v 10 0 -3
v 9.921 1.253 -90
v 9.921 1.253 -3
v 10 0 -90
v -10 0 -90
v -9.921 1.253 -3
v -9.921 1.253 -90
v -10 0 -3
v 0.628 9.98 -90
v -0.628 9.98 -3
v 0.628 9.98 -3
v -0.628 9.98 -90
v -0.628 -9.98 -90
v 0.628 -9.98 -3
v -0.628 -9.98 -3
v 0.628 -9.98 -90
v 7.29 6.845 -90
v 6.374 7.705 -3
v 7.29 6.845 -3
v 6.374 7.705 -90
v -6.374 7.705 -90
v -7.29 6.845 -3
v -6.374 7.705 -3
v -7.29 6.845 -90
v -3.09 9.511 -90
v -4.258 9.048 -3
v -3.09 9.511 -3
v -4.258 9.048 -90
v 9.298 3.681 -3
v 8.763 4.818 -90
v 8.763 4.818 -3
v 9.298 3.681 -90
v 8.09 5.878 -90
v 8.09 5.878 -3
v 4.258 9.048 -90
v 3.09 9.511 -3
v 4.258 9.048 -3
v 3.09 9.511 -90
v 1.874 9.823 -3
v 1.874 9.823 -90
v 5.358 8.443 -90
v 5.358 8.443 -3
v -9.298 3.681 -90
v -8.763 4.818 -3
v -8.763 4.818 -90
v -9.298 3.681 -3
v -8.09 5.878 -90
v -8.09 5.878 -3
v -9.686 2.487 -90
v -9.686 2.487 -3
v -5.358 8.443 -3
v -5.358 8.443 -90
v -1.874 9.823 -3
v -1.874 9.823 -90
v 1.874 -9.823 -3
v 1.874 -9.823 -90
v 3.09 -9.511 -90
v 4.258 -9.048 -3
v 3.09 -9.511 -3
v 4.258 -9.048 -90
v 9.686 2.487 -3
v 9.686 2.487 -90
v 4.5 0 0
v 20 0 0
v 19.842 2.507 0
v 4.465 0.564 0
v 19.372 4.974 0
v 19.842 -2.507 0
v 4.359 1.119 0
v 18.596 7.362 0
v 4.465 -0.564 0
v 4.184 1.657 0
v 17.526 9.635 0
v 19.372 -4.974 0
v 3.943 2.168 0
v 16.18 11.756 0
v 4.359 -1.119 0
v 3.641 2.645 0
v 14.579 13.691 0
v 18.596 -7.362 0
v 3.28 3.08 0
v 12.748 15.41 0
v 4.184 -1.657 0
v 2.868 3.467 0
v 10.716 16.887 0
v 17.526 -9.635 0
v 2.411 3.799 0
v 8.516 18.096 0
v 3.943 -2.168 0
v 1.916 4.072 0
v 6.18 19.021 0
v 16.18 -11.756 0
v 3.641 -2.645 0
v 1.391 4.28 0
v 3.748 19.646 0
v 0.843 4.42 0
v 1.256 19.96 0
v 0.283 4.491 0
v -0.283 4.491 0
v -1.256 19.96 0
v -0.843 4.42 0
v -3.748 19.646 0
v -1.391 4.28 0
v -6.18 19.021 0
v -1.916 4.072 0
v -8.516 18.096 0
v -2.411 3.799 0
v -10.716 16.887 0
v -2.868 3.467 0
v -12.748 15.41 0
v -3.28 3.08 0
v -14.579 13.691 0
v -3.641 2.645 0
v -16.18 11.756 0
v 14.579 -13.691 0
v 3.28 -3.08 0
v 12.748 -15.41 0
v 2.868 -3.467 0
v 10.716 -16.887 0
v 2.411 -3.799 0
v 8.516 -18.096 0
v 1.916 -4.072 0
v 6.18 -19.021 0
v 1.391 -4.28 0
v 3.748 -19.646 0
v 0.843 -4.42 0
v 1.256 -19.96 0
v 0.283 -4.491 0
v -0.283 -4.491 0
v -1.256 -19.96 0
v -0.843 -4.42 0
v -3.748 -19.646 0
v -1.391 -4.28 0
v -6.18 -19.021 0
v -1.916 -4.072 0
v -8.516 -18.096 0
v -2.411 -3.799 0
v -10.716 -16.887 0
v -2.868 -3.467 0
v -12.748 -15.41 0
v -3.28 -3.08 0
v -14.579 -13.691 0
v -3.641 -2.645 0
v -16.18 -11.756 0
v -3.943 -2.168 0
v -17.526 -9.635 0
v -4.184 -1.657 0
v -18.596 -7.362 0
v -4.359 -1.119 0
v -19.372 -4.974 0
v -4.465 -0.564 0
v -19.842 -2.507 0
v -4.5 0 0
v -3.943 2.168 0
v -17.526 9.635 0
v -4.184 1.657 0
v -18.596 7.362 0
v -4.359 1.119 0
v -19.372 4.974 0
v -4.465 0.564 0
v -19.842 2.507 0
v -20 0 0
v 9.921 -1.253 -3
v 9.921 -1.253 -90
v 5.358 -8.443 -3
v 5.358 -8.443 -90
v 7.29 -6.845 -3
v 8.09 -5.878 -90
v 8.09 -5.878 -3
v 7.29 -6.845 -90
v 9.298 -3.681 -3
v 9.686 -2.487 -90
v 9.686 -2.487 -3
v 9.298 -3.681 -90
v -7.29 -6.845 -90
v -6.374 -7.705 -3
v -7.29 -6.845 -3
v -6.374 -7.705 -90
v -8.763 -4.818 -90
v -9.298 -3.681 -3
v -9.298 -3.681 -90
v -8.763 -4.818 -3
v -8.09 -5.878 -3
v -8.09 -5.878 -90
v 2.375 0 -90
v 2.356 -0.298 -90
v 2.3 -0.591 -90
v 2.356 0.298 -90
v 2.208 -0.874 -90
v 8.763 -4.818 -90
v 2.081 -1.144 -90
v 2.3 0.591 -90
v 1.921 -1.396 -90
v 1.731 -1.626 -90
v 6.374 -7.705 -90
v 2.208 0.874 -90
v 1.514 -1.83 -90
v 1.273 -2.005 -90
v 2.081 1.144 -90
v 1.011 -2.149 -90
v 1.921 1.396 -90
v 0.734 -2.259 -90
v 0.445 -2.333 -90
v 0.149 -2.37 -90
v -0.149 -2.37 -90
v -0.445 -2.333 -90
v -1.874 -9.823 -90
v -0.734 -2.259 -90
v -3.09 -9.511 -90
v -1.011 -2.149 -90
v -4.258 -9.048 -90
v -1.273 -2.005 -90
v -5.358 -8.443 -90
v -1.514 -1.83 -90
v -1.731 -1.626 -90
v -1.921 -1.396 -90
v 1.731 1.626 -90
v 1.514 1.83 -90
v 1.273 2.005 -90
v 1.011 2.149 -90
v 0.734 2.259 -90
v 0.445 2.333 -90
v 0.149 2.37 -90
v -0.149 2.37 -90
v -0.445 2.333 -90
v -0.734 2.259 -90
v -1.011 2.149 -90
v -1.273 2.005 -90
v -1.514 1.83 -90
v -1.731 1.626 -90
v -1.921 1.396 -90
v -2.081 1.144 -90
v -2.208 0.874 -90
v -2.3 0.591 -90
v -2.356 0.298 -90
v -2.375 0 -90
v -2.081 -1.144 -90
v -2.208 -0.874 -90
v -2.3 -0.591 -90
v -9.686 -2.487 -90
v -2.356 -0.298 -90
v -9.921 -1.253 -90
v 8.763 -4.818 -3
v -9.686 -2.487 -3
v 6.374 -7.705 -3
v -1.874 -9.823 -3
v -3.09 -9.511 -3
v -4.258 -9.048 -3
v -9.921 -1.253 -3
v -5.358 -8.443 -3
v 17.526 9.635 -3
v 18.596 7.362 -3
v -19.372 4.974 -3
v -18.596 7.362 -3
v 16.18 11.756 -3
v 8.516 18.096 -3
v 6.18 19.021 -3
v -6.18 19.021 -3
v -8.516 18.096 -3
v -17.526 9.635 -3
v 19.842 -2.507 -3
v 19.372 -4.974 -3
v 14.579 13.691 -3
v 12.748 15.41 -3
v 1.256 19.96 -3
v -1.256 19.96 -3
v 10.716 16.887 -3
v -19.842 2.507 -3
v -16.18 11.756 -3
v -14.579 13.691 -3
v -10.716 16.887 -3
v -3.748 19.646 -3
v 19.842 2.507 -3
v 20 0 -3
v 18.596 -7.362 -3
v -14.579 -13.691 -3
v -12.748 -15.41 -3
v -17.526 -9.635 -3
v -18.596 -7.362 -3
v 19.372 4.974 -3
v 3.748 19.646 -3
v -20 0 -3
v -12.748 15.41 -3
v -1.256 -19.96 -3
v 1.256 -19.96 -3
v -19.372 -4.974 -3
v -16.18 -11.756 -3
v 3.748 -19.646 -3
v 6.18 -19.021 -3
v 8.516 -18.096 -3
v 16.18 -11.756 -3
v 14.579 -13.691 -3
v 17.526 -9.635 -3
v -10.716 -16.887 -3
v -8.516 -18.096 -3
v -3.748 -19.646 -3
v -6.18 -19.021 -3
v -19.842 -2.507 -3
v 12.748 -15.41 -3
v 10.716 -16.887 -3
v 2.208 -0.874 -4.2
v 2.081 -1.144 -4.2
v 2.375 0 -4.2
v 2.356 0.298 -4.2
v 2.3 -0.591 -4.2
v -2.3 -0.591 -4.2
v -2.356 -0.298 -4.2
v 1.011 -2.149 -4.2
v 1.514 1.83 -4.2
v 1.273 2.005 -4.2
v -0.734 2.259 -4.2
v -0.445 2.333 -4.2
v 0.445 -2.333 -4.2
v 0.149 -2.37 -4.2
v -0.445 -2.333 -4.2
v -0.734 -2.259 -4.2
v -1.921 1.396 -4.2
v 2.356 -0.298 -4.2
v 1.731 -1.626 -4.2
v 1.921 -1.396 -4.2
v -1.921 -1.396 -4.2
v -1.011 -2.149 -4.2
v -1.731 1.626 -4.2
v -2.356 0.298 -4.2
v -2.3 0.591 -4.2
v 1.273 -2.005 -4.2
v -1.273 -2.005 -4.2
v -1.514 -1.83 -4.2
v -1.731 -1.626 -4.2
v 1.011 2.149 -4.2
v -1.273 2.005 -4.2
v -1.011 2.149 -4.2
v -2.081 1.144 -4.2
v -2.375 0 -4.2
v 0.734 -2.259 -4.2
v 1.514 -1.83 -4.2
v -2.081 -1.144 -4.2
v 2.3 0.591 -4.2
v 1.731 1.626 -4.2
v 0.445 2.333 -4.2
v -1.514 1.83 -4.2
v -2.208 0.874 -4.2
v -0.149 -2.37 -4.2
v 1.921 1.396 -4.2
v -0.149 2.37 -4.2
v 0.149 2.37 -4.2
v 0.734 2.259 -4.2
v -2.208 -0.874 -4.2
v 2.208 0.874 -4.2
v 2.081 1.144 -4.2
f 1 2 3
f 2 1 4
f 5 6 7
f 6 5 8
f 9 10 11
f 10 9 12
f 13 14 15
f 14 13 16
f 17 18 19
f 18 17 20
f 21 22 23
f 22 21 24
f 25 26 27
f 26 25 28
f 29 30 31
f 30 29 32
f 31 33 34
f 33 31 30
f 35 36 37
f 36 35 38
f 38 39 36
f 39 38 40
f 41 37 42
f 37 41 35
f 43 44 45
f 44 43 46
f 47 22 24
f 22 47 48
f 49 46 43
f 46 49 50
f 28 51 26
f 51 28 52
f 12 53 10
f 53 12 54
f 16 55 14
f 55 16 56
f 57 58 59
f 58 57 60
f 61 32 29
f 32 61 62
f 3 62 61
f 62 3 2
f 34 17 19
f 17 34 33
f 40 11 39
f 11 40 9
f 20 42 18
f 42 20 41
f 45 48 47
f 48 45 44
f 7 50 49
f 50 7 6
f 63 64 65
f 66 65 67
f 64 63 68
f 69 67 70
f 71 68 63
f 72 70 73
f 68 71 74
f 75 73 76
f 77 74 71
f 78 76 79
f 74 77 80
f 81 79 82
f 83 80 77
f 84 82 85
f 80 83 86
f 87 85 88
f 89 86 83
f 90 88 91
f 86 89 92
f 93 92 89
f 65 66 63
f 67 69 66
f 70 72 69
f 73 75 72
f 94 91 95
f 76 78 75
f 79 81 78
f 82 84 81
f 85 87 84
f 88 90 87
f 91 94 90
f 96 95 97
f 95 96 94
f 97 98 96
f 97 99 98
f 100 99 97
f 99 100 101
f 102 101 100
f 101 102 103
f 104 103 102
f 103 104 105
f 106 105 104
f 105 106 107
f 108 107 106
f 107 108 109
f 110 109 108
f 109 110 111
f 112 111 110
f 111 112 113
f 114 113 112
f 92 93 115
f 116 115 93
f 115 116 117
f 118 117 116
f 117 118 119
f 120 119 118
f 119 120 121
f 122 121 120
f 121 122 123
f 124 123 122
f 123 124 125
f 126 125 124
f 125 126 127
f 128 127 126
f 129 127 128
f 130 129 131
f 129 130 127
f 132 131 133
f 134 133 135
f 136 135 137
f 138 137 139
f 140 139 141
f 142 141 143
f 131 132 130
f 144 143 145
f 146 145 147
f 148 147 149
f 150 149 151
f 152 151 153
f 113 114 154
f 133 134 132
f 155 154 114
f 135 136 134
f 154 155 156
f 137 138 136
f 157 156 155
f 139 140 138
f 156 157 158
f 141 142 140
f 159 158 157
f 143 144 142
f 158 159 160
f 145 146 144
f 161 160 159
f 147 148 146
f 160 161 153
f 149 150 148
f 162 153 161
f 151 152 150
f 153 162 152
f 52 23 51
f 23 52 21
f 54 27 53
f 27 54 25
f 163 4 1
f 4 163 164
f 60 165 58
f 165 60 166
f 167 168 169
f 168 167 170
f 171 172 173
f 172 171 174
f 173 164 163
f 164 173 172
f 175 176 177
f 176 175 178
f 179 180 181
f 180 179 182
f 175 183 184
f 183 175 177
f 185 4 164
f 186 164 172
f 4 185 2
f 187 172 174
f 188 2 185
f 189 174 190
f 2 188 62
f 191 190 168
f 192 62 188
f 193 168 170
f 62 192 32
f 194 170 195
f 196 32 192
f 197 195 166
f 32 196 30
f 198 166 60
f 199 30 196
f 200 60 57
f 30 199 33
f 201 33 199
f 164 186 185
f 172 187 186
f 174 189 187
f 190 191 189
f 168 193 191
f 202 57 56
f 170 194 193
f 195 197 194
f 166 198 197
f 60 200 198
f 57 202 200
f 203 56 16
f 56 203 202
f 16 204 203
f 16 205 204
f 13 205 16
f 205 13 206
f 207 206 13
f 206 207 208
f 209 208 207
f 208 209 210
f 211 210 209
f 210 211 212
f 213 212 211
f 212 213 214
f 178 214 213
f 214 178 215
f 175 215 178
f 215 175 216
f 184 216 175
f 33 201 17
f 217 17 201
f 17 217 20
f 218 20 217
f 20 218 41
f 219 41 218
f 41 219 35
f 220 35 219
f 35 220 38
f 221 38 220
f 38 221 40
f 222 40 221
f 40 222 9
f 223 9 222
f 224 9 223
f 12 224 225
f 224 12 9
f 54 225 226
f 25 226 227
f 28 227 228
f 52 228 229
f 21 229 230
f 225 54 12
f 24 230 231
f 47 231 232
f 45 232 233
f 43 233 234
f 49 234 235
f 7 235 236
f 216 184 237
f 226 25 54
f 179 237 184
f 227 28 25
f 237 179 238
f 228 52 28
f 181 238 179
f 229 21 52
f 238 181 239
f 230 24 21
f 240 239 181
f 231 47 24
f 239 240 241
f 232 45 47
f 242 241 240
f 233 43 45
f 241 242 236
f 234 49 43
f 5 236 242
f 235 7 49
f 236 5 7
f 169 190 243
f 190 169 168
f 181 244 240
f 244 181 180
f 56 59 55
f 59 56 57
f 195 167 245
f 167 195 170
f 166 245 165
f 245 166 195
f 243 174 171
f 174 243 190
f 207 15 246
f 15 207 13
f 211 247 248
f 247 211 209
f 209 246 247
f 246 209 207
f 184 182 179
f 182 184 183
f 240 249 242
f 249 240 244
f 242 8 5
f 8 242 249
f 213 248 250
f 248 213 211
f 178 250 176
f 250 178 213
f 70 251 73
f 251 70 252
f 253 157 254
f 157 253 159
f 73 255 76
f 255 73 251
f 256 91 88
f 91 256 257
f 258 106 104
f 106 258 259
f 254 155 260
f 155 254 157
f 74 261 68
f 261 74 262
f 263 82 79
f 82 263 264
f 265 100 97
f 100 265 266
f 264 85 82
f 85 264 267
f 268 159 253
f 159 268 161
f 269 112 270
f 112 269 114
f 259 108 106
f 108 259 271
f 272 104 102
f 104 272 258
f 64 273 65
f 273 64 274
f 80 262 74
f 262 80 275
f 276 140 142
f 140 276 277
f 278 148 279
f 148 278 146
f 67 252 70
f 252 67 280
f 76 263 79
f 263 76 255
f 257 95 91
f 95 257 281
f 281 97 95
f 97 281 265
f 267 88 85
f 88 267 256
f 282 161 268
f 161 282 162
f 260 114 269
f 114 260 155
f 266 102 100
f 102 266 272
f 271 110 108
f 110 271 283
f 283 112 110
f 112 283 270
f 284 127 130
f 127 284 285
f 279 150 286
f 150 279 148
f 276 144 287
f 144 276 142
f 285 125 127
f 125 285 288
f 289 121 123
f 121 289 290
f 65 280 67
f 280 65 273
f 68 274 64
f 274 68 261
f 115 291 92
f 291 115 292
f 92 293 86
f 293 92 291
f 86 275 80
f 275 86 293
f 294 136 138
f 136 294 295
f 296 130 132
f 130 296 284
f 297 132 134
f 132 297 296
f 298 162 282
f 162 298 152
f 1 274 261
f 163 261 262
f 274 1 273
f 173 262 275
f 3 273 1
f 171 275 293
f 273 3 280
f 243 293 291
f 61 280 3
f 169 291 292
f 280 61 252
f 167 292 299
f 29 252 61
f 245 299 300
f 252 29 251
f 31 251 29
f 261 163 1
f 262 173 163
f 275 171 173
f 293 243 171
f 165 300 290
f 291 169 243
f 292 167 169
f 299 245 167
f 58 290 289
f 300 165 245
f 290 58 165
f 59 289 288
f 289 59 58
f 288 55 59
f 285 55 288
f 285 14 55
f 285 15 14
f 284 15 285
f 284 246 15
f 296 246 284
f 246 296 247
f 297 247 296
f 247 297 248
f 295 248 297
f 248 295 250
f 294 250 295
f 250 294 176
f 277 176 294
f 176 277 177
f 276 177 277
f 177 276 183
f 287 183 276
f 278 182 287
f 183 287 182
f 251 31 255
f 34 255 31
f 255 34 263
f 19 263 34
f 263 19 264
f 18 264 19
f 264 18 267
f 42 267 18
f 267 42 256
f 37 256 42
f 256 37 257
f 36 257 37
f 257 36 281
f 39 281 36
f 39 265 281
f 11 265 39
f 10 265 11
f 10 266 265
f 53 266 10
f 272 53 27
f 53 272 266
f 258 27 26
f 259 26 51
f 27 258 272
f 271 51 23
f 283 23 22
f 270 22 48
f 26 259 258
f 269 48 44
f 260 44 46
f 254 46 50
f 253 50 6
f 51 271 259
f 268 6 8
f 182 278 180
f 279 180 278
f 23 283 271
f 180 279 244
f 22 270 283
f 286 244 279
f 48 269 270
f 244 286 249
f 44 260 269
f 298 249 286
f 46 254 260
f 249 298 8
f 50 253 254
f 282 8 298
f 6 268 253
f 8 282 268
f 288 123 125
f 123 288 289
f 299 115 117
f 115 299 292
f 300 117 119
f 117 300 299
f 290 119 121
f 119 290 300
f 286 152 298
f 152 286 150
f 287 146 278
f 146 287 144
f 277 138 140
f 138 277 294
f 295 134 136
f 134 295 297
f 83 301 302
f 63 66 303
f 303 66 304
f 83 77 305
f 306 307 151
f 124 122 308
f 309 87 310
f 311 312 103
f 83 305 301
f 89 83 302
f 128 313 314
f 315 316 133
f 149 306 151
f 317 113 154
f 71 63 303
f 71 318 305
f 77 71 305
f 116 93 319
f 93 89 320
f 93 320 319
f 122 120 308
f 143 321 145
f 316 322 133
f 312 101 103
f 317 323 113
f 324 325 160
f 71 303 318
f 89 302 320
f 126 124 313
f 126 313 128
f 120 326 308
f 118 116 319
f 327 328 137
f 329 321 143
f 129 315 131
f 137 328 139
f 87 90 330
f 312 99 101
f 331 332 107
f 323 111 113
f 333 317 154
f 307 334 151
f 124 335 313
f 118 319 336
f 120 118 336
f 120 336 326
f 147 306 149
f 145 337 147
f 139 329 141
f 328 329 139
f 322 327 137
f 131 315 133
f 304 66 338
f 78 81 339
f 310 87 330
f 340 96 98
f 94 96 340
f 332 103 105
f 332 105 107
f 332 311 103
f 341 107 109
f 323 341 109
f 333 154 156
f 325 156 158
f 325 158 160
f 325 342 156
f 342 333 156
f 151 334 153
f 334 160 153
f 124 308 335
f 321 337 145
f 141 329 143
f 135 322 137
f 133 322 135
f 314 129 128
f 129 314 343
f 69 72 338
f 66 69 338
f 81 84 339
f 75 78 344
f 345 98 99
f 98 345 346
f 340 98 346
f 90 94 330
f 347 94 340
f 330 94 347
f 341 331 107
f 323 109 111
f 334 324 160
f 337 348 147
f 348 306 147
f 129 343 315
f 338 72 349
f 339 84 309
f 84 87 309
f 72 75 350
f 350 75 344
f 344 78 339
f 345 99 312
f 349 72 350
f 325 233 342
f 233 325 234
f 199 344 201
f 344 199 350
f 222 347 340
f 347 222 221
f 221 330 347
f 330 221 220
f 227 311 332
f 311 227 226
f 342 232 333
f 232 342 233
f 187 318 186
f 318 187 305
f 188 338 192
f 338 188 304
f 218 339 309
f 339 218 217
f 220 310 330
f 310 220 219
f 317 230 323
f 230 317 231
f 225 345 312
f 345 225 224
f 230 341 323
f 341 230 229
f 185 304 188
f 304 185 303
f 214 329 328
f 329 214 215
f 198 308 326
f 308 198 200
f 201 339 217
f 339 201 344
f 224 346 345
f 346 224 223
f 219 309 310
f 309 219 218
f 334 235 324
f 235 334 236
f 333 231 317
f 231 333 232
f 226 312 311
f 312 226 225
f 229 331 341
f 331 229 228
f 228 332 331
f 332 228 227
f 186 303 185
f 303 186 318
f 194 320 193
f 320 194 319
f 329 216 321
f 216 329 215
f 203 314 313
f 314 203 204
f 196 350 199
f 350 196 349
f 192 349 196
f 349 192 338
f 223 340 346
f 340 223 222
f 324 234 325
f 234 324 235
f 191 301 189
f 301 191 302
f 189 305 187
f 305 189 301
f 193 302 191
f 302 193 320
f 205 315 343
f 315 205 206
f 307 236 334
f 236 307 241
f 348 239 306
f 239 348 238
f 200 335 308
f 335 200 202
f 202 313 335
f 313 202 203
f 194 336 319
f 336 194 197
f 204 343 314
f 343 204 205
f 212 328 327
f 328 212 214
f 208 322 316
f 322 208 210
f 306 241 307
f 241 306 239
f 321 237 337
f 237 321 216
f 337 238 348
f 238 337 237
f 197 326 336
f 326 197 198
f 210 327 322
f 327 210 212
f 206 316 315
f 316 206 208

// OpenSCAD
$fn = 50;


difference() {
	union() {
		translate(v = [0, 0, -90.0000000000]) {
			cylinder(h = 90, r = 10.0000000000);
		}
		translate(v = [0, 0, -3.0000000000]) {
			cylinder(h = 3, r = 20.0000000000);
		}
	}
	union() {
		translate(v = [0, 0, 0]) {
			rotate(a = [0, 0, 0]) {
				difference() {
					union() {
						#translate(v = [0, 0, -90.0000000000]) {
							cylinder(h = 90, r = 2.2500000000);
						}
						#translate(v = [0, 0, -4.2000000000]) {
							cylinder(h = 4.2000000000, r1 = 2.3750000000, r2 = 4.5000000000);
						}
						#translate(v = [0, 0, -90.0000000000]) {
							cylinder(h = 90, r = 2.3750000000);
						}
						#translate(v = [0, 0, -90.0000000000]) {
							cylinder(h = 90, r = 2.2500000000);
						}
					}
					union();
				}
			}
		}
	}
}
